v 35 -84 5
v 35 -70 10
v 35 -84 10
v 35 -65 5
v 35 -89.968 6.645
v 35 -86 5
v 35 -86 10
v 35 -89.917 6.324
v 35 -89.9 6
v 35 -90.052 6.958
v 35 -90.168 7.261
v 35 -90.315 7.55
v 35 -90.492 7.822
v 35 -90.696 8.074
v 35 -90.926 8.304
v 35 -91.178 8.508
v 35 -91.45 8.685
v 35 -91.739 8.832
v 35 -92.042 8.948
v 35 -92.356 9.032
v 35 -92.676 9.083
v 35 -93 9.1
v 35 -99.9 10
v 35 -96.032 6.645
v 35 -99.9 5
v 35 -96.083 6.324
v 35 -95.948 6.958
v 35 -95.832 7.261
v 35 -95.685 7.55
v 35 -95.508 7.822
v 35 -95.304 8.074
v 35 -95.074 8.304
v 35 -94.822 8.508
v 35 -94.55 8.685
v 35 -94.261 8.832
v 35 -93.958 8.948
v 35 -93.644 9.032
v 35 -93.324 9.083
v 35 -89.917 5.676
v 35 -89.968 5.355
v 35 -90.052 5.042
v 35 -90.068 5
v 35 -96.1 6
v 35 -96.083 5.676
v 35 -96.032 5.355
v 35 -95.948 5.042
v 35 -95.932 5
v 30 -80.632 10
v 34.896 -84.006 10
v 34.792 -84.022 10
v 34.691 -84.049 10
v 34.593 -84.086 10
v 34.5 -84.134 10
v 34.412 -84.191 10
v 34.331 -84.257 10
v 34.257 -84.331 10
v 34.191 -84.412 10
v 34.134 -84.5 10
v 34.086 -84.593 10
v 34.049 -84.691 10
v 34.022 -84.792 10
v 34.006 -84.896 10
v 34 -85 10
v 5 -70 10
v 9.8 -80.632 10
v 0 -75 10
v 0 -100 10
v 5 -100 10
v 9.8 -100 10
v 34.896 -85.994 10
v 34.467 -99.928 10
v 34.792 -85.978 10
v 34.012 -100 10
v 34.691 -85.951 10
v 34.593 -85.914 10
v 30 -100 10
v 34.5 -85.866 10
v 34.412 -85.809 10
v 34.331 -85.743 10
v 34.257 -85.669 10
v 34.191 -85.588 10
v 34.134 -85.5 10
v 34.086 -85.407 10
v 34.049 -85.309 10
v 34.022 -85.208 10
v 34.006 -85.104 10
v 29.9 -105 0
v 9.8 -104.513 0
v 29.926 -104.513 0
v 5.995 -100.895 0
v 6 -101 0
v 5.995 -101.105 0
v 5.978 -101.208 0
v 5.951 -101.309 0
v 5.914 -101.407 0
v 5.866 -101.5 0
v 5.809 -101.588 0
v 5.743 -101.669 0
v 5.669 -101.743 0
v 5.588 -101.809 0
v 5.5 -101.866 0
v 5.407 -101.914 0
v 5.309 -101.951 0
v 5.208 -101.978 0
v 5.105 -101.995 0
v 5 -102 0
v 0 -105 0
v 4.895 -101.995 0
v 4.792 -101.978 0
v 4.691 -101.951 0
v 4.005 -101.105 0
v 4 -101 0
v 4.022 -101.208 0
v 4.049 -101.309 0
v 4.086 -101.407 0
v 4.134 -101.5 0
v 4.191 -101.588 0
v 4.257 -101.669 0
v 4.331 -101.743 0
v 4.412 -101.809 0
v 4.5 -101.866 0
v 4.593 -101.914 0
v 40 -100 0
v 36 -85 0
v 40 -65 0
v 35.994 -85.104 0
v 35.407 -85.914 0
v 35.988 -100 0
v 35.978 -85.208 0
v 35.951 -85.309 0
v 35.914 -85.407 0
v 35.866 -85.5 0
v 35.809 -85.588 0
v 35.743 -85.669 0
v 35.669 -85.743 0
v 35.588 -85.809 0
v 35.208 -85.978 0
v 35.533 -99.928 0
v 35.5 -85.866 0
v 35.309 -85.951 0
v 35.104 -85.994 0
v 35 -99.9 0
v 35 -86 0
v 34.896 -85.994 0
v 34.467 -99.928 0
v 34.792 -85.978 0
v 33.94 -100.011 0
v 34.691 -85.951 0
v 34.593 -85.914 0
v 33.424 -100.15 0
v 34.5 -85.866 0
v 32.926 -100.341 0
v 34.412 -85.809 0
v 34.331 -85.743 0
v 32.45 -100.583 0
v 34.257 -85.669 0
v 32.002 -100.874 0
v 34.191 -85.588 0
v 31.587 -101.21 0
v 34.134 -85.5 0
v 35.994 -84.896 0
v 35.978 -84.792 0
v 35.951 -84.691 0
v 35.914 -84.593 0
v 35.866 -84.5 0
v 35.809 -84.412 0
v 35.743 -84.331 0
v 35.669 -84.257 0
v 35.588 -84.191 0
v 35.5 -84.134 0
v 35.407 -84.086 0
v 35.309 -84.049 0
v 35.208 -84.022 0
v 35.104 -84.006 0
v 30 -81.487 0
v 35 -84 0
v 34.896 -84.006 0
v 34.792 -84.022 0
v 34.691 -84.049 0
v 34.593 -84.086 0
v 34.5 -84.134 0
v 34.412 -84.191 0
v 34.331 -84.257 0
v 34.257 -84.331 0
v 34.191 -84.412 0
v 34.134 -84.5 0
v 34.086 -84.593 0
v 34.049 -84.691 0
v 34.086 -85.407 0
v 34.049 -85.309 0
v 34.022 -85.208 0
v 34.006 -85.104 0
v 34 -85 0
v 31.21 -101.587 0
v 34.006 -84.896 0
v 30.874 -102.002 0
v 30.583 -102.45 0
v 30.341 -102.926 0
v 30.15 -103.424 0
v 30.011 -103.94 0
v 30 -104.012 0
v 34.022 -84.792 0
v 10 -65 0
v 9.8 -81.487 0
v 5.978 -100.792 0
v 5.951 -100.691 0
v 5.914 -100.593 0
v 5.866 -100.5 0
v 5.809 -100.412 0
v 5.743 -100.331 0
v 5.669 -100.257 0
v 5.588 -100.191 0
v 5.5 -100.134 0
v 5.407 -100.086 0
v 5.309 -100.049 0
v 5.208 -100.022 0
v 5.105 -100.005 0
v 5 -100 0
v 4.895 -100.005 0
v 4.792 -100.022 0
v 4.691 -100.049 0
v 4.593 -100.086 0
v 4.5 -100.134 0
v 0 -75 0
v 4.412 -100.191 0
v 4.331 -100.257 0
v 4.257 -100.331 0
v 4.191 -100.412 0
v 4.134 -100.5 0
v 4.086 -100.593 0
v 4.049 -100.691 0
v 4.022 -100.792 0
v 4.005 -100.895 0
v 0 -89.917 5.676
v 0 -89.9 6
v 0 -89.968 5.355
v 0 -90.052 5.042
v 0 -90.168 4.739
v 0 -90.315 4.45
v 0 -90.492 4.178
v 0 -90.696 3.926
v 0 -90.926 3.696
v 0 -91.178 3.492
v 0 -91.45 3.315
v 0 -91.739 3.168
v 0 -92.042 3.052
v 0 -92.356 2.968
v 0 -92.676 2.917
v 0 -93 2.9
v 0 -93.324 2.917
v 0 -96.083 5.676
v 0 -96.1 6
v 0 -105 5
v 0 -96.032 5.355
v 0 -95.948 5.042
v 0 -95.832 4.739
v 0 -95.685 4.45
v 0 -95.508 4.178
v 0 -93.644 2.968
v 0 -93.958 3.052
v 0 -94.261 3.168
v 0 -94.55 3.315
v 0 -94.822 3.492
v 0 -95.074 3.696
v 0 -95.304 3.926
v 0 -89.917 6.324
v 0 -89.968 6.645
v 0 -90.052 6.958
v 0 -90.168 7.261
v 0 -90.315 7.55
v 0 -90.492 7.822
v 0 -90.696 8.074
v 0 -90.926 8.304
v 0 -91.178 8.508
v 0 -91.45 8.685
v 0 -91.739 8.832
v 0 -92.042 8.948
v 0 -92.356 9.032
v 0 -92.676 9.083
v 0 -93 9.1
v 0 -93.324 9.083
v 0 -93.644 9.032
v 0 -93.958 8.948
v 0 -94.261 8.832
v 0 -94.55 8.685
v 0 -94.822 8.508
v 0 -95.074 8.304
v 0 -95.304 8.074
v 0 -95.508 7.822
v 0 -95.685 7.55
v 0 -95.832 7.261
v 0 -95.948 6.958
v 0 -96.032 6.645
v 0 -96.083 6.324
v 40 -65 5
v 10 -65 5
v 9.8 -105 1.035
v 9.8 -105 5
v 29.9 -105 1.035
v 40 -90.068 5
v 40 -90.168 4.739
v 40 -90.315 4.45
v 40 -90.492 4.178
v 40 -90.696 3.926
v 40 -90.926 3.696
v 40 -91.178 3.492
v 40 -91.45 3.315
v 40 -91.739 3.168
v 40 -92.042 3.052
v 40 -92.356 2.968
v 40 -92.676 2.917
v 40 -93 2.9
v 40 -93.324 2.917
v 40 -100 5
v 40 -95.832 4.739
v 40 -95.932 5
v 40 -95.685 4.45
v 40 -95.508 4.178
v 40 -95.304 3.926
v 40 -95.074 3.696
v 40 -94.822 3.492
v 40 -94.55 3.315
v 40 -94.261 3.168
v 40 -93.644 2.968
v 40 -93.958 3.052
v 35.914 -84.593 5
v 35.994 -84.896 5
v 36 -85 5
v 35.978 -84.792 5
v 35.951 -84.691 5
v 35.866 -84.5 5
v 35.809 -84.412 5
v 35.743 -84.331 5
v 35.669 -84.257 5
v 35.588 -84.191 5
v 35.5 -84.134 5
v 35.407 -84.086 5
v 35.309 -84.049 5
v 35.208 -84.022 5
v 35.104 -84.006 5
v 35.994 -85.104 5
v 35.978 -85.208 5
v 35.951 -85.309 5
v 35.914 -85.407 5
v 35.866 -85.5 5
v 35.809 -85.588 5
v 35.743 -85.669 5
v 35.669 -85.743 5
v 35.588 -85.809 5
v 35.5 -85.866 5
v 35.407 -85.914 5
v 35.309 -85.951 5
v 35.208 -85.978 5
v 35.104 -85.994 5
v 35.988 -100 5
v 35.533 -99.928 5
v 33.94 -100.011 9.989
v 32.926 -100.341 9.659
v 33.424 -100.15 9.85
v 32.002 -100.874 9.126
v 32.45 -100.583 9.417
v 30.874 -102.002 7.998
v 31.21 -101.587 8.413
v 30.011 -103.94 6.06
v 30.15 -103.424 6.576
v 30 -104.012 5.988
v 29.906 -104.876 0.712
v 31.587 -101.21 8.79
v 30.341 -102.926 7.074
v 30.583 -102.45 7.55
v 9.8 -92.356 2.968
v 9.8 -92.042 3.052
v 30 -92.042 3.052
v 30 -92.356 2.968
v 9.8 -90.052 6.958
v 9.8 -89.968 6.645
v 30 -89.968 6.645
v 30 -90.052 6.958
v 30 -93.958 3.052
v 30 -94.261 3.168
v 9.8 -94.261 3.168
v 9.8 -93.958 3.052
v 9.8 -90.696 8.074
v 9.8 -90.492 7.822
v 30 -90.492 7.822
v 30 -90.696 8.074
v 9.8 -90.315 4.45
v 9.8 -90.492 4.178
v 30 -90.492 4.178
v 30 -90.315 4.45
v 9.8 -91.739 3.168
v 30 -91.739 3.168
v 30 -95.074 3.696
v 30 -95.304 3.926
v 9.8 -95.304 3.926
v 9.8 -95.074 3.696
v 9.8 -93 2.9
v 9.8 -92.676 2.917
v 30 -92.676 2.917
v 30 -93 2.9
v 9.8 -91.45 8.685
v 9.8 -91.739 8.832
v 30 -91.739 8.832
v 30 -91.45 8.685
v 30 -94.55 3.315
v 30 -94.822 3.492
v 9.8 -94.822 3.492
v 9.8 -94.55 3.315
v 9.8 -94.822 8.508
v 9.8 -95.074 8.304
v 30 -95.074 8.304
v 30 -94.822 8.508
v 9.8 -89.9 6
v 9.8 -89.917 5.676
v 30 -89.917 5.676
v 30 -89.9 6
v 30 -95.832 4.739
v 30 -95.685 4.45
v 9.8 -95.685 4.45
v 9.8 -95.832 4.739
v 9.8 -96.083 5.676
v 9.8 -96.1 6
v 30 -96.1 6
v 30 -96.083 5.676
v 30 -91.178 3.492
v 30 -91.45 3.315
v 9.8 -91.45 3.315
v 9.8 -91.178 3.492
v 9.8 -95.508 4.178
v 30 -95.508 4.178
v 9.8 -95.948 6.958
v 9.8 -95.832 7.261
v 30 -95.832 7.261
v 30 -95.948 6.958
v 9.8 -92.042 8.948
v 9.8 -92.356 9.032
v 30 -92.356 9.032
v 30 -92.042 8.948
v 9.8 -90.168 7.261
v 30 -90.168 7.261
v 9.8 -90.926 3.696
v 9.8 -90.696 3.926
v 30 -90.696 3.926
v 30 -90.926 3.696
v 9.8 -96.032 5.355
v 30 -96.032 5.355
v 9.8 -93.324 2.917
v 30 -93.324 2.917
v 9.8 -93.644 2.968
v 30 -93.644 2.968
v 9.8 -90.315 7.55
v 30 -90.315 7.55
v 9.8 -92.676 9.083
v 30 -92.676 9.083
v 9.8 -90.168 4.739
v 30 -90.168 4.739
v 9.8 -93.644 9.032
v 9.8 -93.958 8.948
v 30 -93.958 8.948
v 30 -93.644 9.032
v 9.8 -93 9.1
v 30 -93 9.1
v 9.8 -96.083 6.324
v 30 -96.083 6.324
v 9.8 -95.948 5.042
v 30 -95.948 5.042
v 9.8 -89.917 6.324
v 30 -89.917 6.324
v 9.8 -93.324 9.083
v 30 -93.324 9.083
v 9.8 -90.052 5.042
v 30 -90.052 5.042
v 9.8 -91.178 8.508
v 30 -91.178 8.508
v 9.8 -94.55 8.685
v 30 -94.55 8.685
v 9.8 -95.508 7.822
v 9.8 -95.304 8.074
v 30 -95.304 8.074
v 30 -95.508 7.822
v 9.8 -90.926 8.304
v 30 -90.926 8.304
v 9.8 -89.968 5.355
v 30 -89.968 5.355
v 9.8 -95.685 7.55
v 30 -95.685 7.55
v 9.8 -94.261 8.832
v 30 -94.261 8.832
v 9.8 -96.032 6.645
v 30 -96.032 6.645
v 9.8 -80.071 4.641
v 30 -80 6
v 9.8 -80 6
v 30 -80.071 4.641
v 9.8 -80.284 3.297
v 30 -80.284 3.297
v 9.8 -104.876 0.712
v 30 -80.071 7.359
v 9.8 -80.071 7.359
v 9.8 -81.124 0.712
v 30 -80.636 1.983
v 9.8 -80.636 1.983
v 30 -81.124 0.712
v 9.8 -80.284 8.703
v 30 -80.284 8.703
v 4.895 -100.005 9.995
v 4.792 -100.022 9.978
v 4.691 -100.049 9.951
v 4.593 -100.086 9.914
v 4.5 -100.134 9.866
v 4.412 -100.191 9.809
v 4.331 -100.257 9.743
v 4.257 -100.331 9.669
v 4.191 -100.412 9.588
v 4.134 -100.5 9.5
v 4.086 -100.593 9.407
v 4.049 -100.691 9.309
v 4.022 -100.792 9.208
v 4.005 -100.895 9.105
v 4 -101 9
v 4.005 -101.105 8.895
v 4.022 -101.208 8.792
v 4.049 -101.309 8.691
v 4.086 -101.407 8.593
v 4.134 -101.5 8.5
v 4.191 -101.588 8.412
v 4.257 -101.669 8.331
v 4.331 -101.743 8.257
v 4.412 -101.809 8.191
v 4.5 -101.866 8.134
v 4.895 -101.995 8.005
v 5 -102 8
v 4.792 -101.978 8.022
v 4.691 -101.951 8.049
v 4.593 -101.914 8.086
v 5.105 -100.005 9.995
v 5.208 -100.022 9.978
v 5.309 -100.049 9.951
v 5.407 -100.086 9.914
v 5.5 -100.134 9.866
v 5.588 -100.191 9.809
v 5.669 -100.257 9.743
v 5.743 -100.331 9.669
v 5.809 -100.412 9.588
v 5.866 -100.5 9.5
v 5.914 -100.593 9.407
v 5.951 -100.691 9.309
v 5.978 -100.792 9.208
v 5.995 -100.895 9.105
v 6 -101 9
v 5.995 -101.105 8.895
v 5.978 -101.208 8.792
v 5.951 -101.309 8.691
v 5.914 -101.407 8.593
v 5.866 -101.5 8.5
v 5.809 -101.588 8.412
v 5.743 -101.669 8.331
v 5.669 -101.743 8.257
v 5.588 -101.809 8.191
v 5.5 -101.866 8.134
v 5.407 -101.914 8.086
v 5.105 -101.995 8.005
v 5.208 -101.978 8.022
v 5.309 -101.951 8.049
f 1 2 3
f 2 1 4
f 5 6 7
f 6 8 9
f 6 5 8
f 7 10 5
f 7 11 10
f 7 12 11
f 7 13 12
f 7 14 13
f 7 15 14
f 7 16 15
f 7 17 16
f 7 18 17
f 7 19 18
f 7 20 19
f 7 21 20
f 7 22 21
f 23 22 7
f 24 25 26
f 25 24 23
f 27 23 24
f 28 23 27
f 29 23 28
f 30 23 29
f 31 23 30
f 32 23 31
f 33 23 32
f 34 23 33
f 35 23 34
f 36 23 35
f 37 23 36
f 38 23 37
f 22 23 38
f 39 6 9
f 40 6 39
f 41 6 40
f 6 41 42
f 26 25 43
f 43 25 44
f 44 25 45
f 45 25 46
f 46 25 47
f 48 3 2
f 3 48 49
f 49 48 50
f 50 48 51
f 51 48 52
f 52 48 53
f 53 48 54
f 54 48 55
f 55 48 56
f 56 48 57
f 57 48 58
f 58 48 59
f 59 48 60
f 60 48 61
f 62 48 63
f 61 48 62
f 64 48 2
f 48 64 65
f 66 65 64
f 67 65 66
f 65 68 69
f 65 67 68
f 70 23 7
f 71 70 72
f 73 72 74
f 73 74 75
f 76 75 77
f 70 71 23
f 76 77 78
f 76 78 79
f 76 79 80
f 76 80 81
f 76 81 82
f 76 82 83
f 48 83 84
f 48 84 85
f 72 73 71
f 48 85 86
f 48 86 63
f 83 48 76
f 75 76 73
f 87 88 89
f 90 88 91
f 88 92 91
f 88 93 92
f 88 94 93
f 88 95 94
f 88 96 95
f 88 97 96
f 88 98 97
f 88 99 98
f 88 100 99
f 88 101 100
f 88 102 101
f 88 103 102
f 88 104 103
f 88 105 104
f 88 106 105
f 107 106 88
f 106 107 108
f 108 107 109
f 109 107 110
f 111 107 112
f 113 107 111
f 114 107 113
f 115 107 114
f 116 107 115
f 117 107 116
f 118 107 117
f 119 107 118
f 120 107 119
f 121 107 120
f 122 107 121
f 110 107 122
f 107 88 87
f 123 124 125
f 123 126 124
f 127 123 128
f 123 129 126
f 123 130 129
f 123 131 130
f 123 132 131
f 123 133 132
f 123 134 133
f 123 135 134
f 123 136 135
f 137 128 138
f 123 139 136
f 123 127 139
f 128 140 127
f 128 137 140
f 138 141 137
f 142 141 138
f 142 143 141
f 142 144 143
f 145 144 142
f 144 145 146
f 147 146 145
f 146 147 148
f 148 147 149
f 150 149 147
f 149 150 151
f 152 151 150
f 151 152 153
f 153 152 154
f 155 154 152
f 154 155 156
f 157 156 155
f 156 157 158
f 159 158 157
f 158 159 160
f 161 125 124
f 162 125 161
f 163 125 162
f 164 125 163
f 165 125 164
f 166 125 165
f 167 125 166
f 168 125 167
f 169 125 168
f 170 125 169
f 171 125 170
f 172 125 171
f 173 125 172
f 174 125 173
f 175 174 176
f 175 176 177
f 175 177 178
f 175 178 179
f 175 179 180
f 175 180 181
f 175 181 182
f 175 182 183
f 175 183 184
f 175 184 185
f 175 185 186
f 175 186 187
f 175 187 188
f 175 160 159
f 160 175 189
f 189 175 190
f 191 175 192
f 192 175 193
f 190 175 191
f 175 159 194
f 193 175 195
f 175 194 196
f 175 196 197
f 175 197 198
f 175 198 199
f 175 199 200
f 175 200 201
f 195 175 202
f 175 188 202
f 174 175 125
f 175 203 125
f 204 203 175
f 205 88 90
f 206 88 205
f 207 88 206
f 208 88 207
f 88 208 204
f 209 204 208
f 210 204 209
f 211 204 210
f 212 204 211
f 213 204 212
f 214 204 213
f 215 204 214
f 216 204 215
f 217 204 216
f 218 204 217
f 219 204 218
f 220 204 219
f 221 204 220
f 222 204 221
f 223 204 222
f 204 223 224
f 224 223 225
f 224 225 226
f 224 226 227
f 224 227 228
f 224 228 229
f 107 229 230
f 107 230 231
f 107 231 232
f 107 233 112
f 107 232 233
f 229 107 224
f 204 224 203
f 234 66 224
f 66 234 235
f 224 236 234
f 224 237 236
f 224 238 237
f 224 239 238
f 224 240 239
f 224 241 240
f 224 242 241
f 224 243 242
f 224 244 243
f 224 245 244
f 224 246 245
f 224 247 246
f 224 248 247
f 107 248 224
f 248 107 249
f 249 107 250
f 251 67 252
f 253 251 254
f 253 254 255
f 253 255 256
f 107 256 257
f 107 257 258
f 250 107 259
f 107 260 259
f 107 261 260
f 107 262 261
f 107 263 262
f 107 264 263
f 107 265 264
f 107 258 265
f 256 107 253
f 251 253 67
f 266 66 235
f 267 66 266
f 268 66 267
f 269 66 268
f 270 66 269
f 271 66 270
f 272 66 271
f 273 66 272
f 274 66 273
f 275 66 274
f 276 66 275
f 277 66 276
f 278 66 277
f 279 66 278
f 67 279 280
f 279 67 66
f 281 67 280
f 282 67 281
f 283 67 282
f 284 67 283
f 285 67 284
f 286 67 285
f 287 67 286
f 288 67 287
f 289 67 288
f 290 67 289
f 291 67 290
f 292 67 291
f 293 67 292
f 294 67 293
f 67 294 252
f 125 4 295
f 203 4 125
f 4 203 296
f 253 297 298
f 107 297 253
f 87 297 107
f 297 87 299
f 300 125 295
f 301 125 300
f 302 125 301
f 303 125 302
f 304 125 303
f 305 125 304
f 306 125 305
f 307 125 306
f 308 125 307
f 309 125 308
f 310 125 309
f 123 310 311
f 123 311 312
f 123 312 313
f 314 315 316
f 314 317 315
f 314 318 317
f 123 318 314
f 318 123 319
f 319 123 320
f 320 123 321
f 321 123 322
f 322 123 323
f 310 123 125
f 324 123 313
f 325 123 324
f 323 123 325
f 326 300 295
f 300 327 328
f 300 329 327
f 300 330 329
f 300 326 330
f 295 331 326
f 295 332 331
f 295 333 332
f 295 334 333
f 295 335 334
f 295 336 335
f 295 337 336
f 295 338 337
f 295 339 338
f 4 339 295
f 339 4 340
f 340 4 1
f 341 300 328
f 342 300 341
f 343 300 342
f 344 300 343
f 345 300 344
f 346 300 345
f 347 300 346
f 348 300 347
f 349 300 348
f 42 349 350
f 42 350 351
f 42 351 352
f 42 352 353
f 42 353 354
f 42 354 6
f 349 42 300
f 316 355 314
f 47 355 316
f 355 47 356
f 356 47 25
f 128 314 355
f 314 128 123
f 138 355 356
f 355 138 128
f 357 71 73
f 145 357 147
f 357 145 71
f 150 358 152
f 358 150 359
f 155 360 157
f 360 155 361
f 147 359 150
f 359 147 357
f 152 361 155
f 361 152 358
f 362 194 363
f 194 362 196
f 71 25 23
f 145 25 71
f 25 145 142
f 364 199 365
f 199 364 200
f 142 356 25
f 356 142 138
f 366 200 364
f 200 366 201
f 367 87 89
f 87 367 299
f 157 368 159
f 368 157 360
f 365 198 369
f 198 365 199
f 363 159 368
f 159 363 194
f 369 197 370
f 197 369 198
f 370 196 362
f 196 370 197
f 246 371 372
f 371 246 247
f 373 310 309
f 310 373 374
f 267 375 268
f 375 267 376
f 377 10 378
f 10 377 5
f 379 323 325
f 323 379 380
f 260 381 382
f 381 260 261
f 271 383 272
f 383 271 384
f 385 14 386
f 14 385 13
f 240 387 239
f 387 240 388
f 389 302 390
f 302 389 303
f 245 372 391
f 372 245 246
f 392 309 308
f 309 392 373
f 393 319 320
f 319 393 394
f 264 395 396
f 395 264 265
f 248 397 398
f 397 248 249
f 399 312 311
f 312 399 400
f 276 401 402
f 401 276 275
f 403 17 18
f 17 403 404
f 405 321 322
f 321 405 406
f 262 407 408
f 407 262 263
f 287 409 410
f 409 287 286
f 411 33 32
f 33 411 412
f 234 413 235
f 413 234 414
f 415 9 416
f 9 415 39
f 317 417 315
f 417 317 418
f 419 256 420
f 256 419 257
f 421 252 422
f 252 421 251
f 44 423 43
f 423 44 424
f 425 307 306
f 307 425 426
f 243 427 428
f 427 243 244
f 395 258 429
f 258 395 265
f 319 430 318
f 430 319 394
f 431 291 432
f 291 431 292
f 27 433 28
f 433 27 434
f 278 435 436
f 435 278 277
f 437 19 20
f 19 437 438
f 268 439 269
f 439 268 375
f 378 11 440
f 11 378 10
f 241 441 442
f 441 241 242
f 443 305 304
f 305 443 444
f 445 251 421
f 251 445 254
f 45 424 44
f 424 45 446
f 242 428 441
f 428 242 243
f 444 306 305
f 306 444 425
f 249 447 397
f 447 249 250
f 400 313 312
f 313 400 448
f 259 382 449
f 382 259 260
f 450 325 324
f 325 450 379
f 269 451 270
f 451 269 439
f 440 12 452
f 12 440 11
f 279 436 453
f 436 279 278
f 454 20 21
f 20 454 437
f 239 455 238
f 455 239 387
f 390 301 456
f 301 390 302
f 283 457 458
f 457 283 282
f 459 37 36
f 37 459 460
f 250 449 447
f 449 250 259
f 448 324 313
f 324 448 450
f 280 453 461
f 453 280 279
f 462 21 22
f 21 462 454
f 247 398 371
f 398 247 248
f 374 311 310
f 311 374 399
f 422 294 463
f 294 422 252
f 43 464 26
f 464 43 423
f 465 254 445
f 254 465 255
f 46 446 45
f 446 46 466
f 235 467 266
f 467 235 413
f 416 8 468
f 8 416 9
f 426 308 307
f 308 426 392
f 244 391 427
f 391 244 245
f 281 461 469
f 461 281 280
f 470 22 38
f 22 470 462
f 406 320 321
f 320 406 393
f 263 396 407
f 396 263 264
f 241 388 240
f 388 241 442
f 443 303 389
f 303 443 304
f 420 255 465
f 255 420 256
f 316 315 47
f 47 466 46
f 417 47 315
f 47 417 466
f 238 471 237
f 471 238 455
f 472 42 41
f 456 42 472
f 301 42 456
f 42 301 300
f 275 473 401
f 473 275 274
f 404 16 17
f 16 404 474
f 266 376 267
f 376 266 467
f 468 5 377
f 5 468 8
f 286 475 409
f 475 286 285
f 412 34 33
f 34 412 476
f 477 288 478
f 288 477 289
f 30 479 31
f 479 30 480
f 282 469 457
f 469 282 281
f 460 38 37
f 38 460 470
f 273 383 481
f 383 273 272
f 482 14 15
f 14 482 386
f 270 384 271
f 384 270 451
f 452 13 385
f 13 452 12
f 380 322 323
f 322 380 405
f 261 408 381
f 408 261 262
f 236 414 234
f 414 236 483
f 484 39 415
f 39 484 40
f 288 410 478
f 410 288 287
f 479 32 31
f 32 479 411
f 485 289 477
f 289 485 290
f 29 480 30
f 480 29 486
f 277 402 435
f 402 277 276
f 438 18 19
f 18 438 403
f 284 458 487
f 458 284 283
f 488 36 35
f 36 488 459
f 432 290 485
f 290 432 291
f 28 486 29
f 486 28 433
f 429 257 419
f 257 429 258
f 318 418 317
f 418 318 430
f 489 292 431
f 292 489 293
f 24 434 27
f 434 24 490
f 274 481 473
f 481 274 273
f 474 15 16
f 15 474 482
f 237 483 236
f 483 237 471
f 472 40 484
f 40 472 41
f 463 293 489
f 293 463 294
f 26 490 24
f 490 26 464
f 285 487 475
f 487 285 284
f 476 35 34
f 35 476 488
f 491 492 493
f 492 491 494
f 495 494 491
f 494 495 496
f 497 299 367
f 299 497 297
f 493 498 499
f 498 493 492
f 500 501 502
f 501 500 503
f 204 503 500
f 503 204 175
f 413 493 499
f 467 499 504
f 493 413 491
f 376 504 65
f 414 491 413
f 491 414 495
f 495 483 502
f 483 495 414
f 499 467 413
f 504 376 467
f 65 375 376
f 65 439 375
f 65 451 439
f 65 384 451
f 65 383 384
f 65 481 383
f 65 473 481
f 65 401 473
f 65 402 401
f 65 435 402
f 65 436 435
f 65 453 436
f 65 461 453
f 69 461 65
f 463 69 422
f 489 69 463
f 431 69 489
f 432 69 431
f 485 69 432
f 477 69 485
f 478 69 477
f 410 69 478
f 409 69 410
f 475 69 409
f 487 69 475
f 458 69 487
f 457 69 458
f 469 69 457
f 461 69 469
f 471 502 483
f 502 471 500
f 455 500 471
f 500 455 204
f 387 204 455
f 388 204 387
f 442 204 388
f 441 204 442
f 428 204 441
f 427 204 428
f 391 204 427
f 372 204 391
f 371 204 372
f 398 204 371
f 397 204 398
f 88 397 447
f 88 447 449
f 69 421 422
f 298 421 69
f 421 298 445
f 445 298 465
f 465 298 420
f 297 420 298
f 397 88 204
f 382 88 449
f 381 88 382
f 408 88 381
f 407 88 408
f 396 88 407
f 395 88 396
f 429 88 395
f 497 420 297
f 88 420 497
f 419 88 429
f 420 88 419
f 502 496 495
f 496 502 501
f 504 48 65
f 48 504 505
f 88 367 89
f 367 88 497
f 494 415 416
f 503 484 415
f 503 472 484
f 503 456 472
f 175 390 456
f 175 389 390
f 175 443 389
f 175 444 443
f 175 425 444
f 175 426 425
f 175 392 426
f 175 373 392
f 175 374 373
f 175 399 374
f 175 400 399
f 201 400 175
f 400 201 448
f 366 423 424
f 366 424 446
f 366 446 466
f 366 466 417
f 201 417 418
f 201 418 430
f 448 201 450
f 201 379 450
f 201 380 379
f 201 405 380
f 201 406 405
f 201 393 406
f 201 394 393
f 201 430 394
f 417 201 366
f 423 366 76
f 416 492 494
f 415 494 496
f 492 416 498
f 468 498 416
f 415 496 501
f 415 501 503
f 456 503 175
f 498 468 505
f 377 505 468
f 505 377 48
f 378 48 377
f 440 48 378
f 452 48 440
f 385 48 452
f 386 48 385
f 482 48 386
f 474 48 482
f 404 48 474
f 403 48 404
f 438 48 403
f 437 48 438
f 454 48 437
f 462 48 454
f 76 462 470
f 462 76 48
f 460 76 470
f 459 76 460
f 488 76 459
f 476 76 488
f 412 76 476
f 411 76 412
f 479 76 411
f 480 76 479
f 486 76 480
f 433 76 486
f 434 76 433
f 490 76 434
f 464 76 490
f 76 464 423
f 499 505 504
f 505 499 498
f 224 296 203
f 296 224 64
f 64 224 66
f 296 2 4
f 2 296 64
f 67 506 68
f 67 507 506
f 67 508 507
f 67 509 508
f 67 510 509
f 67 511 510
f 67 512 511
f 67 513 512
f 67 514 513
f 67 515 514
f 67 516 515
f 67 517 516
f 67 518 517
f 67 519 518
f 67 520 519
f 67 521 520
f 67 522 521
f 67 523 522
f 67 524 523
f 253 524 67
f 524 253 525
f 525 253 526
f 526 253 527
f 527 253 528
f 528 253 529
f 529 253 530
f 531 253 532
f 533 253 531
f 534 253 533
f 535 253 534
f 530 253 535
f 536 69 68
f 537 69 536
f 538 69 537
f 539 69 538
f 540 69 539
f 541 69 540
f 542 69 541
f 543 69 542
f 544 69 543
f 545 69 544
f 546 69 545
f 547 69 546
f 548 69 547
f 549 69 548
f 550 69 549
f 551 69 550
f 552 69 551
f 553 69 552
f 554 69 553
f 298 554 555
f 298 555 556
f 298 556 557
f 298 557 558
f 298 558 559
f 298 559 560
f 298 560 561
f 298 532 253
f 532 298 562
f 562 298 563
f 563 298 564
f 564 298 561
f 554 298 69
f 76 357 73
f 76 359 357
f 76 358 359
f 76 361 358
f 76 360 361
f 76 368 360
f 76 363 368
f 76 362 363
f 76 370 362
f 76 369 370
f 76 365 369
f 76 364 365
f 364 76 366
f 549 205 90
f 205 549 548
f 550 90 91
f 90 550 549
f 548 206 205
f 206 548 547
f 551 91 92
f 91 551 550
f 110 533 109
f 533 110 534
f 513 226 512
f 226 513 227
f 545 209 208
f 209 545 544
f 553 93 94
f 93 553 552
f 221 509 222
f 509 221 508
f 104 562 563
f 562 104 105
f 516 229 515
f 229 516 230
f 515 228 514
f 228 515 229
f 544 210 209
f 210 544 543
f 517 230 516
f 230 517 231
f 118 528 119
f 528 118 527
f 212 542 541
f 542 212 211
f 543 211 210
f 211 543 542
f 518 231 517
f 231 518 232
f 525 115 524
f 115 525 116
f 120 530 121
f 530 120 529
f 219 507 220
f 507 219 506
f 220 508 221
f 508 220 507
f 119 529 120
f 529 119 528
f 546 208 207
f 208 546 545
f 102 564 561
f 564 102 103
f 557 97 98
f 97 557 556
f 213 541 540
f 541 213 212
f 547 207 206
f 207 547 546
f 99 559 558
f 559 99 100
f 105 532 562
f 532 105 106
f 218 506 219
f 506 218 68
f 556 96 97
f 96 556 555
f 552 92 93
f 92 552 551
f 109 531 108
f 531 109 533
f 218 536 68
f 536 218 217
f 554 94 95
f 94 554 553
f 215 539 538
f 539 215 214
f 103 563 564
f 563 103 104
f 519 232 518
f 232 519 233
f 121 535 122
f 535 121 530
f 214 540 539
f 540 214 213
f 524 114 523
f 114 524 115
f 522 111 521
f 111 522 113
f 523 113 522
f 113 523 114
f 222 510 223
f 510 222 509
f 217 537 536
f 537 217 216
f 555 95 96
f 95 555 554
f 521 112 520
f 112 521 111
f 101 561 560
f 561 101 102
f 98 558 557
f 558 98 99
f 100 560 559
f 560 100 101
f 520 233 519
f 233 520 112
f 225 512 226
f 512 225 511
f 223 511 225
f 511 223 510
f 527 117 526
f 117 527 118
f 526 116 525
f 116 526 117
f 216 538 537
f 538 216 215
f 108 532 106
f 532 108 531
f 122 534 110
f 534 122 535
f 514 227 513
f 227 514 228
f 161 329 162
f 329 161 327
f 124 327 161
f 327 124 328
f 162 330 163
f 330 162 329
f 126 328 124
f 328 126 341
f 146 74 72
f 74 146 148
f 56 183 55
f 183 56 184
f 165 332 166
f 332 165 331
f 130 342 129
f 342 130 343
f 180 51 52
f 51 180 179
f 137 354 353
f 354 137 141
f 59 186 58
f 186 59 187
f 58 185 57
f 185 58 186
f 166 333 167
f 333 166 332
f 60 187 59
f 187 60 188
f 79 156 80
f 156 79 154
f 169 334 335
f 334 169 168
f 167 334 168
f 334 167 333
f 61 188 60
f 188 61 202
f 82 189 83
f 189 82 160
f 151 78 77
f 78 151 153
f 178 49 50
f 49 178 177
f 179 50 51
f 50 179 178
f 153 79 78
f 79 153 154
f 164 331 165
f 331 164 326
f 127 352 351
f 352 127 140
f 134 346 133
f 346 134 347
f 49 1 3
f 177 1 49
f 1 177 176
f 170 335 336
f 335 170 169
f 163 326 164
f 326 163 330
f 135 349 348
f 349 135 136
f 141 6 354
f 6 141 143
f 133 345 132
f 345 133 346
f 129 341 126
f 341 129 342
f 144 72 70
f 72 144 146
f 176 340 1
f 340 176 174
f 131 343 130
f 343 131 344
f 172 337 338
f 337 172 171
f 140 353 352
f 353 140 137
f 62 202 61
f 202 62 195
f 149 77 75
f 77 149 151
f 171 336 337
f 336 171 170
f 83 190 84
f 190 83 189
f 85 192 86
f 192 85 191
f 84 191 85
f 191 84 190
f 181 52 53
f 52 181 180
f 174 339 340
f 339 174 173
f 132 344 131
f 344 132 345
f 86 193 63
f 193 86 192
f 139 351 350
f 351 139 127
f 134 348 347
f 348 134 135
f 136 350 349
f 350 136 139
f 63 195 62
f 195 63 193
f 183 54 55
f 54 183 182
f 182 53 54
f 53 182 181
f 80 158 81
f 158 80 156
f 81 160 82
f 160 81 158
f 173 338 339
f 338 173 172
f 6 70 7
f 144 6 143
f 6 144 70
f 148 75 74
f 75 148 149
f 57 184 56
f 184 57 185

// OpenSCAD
// file: config_5x7.scad
/*
This is the base configuration file for the 4x5" format
# we are not using the exact ANSI measures, but slightly rounded measures for slight simplification
*/

// general tolerance
vTolerance = 0.2;

// sheet film and cassette measurements
vFilmSheet_l = 127;
vFilmSheet_w = 178;
vCassette_l = 214; // A min
vCassette_w = 150; // B max
vCassette_h = 14.3; // C max
vLightTrap_l = 1.5; // M2
vLightTrap_w = vCassette_w;
vLightTrap_h = 1.5; // M1
vLightTrap_offsetX = 194.5; // G max
vFilmWindow_l = 171;
vFilmWindow_w = 126;
vFilmWindow_offsetX = 18;
vGroundGlass_offsetZ = 5.8;

// Graflok - although 5x7 normally doesn't have Graflok clamps, but we use this measurement on the back plate
vGraflok_h = 6; // this is not the official measurement, just measured from a camera 

// lens board measures (we are using Wista/Technika-style lensboards)
vLensboard_l = 100;
vLensboard_w = 97;
vLensboard_h = 2;
vLensboard_offsetX = -(vLensboard_l+3)/2; // caution: we have an asymetric offset!
vLensboard_offsetY = -vLensboard_w/2;
vLensboardHole_d = 85;
vLensboardLighttrap_d = 89;
vLensboardLighttrap_h = 1+vTolerance;

// bellows frame measures - the bellows frame design is derived from standardcameras.com
// back frame
vBellowsBackInner_l = 193;
vBellowsBackInner_w = vBellowsBackInner_l;
vBellowsBackOuter_l = vBellowsBackInner_l+1;
vBellowsBackOuter_w = vBellowsBackOuter_l;

vBellowsBackFrameOuter_l = 209;
vBellowsBackFrameOuter_w = vBellowsBackFrameOuter_l;
vBellowsBackFrameOuter_h = 7;
vBellowsBackFrameInner_l = 180;
vBellowsBackFrameInner_w = vBellowsBackFrameInner_l;
vBellowsBackFrameInner_h = 5;

vBellowsBackLightTrapOuter_l = vBellowsBackFrameInner_l+2*2;
vBellowsBackLightTrapOuter_w = vBellowsBackLightTrapOuter_l;
vBellowsBackLightTrap_h = 3;

vBellowsBackFrameScrewHole_d = 2;
vBellowsBackFrameScrewHole_h = 10;
vBellowsBackFrameScrewHole_offsetXY = 80;
vBellowsBackFrameScrewHole_offsetZ = vBellowsBackFrameOuter_h/2;

// front frame
vBellowsFrontInner_l = 110; 
vBellowsFrontInner_w = vBellowsFrontInner_l;
vBellowsFrontOuter_l = vBellowsFrontInner_l+1;
vBellowsFrontOuter_w = vBellowsFrontOuter_l;

vBellowsFrontFrameOuter_l = 124;
vBellowsFrontFrameOuter_w = vBellowsFrontFrameOuter_l;
vBellowsFrontFrameOuter_h = 7;
vBellowsFrontFrameInner_l = 98;
vBellowsFrontFrameInner_w = vBellowsFrontFrameInner_l;
vBellowsFrontFrameInner_h = 5;

vBellowsFrontLightTrapOuter_l = vBellowsFrontFrameInner_l+2*2;
vBellowsFrontLightTrapOuter_w = vBellowsFrontLightTrapOuter_l;
vBellowsFrontLightTrap_h = 0;

vBellowsFrontFrameScrewHole_d = 2;
vBellowsFrontFrameScrewHole_h = 10;
vBellowsFrontFrameScrewHole_offsetXY = 50;
vBellowsFrontFrameScrewHole_offsetZ = vBellowsFrontFrameOuter_h/2;




// body dimensions
vWall_strength = 5;
vBodyOuter_l = 235; // make sure this is at least 4*vWall_strength larger than vBellowsBackFrameOuter_l!
vBodyOuter_w = 220; // make sure this is at least 2*vWall_strength larger than vBellowsBackFrameOuter_l!
vBodyOuter_h = 65;
vBodyEdge_r = vWall_strength;

// we will center our model on the Y axis and on the center of the bellows frame
// at least for the 4x5 version, we have to do an asymetric offset of 2.5mm on the X-axis 
vAsymOffsetX = -2.5;  

// back plate
vBackPlateLength = 210; // we will probably use about the same size as the bellows back frame
vBackPlateStrength = vWall_strength;

// hinges for front lid
vHingeInnerDistance = 120;
vHingeBaseWidth = 30;
vHingeHole = 5;

// lid lock measures
vLidLockBase_d = 8;
vLidLockHole_distance = 100;

// rail dimensions
vLowerRail_w = 120;
vUpperRail_w = vLowerRail_w;

// cutout for stop indents
vStopIndent_l = 4;
vStopIndent_h = 5;
vStopIndentDistance = 25; // shorter than 25 is not necessary
vStopIndent_offsetX = 30; // don't go shorter than 20 if you intend to use a 90mm lens!

// for all dovetails we use a base width of 5mm and a base height of 5mm
// we are applying tolerances to the inner AND outer part of a dovetail, in width and height
vDoveTail_w = 5;
vDoveTail_h = 5;
vDoveTail_tolerance = 0.2;

// focusing rod
vFocusingRod_d = 6;
vFocusingKnob_d = 25;
vFocusingKnob_h = 20;

// stabilizer measures (just the outer measures of our stabilizer block, not the tripod slider)
vStabilizerBase_l = 200;
vStabilizerBase_w = 100;  
vStabilizerBase_h = 7;
vStabilizerDovetailBase_w = 50;
// screw holes for the stabilizer
vLidHoleCount_x = 6;
vLidHoleDist_x = 35;
vLidHoleCount_y = 2;
vLidHoleDist_y = 60;

// screw diameters, length is individually set
vScrew1Hole_d = 3;
vScrew1ThreadHole_d = 2.2;
vScrew2Hole_d = 2;
vScrew2ThreadHole_d = 1.4;


 
// file: modules.scad
/*
This is a collection of the modules which are used heavily within the whole project.
Almost all parts rely on the modules to remain "as is", especially regarding their current orientation.
So please act very carefully here, otherwise you may screw up the complete design!

*/

// roof module - this is heavily used for dovetail cutouts
// please keep as is
module roof(l, w, h){
    polyhedron(
        points=[
            [0,0,0],
            [l,0,0],
            [l,w,0],
            [0,w,0],
            [0,w/2,h],
            [l,w/2,h]
            ],
        faces=[
            [0,1,2,3],
            [0,4,1],
            [1,4,5,2],
            [2,5,3],
            [3,5,4,0]
            ]
            );
    };

// a wedge module - this is heavily used for cutting edges
// please keep as is    
module wedge(l, w, h) {
    polyhedron(
            points=[
                [0,0,0],
                [l,0,0],
                [l,w,0],
                [0,w,0],
                [0,0,h],
                [l,0,h]
            ],
            faces=[
                [0,3,2,1],
                [0,1,5,4],
                [1,2,5],
                [2,3,4,5],
                [3,0,4]
            ]
    );
   };

// simple tube module.   
module tube(d1, d2, h) {
    difference() {
        cylinder(d=d1, h=h);
        cylinder(d=d2, h=h);
        };
    };

// mainly used for making holes for countersunk screws
// please keep as is    
module countersunk_screw(vScrew_d, vScrew_l){
    union(){
    cylinder(d=vScrew_d, h= vScrew_l);
    cylinder(d1=vScrew_d*2, h=vScrew_d);
    };
};

// module for making hexagons, e.g. hex nuts. kw is the key width
// please keep as is
module hex(kw, h) {
	render()
        translate([0, 0, h/2])
            intersection_for(a = [0, 120, 240]) {
                rotate([0, 0, a])
                    cube([kw, 3 * kw, h], true);
                }
}
// file: baseconfig.scad
/*
Here we define some variables which are independent from the camera format
*/


// some generic variables
$fn = 60; // we are using 60 fragments for cylinders and similar objects

// we are including a format specific configuration sheet - but make sure to include only one!

// include <config_4x5.scad>;
include <config_5x7.scad>;
// include <config_8x10.scad>;

// Arca Swiss tripod plate
// caution: some Arca Swiss compatible tripod heads may have slight variations
// vArca_length = xx; // the length is irrelevant here
vArca_width = 38;
vArca_height = 7;
vArcaBase_cutout = 4;
vArcaBase_height = 1.5;
// main file
// loading the base configuration
include <baseconfig.scad>;

// some modules such as hex, countersunk screws, roof, wedge are available in a module file
use <modules.scad>;


// focusing rod axis is set to -63mm to the lid center
// rail block total width is 100mm
// inner total width is 160mm



vFocusingBlock_l = 35; //OK


//vFocusingBlock_w = 30;
vFocusingBlock_w = (vBodyOuter_w - 2*vWall_strength - vLowerRail_w - 2*vDoveTail_w)/2; 
vFocusingBlock_h = 10;
vFocusingBlock_offsetX = 0;
vFocusingBlock_offsetY = -(vBodyOuter_w - 2*vWall_strength)/2; // we are shifting to -Y so we can use the same measurements as on the lid 
vFocusingBlock_offsetZ = 0;

vFrontWallExtension_l = 5;
vFrontWallExtension_w = vFocusingBlock_w - vWall_strength;
vFrontWallExtension_h = 5;
vFrontWallExtension_offsetX = vFocusingBlock_l;
vFrontWallExtension_offsetY = vFocusingBlock_offsetY + vFocusingBlock_w - vFrontWallExtension_w;
vFrontWallExtension_offsetZ = 0;

vFrontEdgeCutout_d = 10+vTolerance;
vFrontEdgeCutout_h = vFocusingBlock_h;
vFrontEdgeCutout_offsetX = vFocusingBlock_l;
vFrontEdgeCutout_offsetY = vFocusingBlock_offsetY;
vFrontEdgeCutout_offsetZ = 0;

vBackEdgeCutout_l = 10;
vBackEdgeCutout_w = 10;
vBackEdgeCutout_h = vFocusingBlock_h;
vBackEdgeCutout_offsetX = 0;
vBackEdgeCutout_offsetY = vFocusingBlock_offsetY+vFocusingBlock_w;
vBackEdgeCutout_offsetZ = 0;

vFocusingRodHole_d = 6+vTolerance;
vFocusingRodHole_h = vFocusingBlock_l+vFrontWallExtension_l;
vFocusingRodHole_offsetX = 0;
vFocusingRodHole_offsetY = -(vBodyOuter_w/2)+10+7;//-68;
//vFocusingRodHole_offsetZ = vFocusingBlock_h/2;
vFocusingRodHole_offsetZ = 6;

vFocusingKnobCutout_d = 26;
vFocusingKnobCutout_h = 20+vTolerance;
vFocusingKnob_offsetX = 10-vTolerance;
vFocusingKnob_offsetY = vFocusingRodHole_offsetY;
vFocusingKnob_offsetZ = vFocusingRodHole_offsetZ;

vLeftUpperEdgeCutout_l = vFocusingBlock_l;
vLeftUpperEdgeCutout_w = vFocusingBlock_h/2;
vLeftUpperEdgeCutout_h = vFocusingBlock_h/2;
vLeftUpperEdgeCutout_offsetX = 0;
vLeftUpperEdgeCutout_offsetY = vFocusingBlock_offsetY+vFocusingBlock_w;
vLeftUpperEdgeCutout_offsetZ = vFocusingBlock_h;

vRightUpperEdgeCutout_l = vFocusingBlock_l;
vRightUpperEdgeCutout_w = vFocusingBlock_h-vFrontWallExtension_h;
vRightUpperEdgeCutout_h = vRightUpperEdgeCutout_w;
vRightUpperEdgeCutout_offsetX = 0;
vRightUpperEdgeCutout_offsetY = vFocusingBlock_offsetY;
vRightUpperEdgeCutout_offsetZ = vFocusingBlock_h;

vScrewHole_d = 2;
vScrewHole_h = 10;
vScrewHole1_offsetX = 5;
vScrewHole2_offsetX = vFocusingBlock_l;
vScrewHole3_offsetX = vFocusingBlock_l;
vScrewHole1_offsetY = vFocusingRodHole_offsetY-8;
vScrewHole2_offsetY = vFocusingRodHole_offsetY-8;
vScrewHole3_offsetY = vFocusingRodHole_offsetY+8;
vScrewHole1_offsetZ = 0;
vScrewHole2_offsetZ = 0;
vScrewHole3_offsetZ = 0;

//wedge(vUpperEdgeCutout_l, -vUpperEdgeCutout_w, -vUpperEdgeCutout_h);


 difference(){   
     union(){
         translate([vFocusingBlock_offsetX, vFocusingBlock_offsetY, vFocusingBlock_offsetZ])
            cube([vFocusingBlock_l, vFocusingBlock_w, vFocusingBlock_h]);
         translate([vFrontWallExtension_offsetX, vFrontWallExtension_offsetY, vFrontWallExtension_offsetZ])
            cube([vFrontWallExtension_l, vFrontWallExtension_w, vFrontWallExtension_h]);
         }
     // front edge cutout
     translate([vFrontEdgeCutout_offsetX, vFrontEdgeCutout_offsetY, vFrontEdgeCutout_offsetZ])
         cylinder(d=vFrontEdgeCutout_d, h= vFrontEdgeCutout_h);
     // hole for focusing_rod
     translate([vFocusingRodHole_offsetX, vFocusingRodHole_offsetY, vFocusingRodHole_offsetZ])
            rotate([0, 90, 0])
                cylinder(d=vFocusingRodHole_d, h=vFocusingRodHole_h);
     // cutout for the focusing knob
     translate([vFocusingKnob_offsetX, vFocusingKnob_offsetY, vFocusingKnob_offsetZ])
            rotate([0, 90, 0])
                cylinder(d=vFocusingKnobCutout_d, h=vFocusingKnobCutout_h);  
     // back edge cut
     translate([vBackEdgeCutout_offsetX, vBackEdgeCutout_offsetY, vBackEdgeCutout_offsetZ])
        rotate([0, -90, 180])
            wedge(vBackEdgeCutout_h, vBackEdgeCutout_w, vBackEdgeCutout_l);
         
     // upper edge cutoff
     translate([vLeftUpperEdgeCutout_offsetX, vLeftUpperEdgeCutout_offsetY, vLeftUpperEdgeCutout_offsetZ])
            wedge(vLeftUpperEdgeCutout_l, -vLeftUpperEdgeCutout_w, -vLeftUpperEdgeCutout_h);
     translate([vRightUpperEdgeCutout_offsetX, vRightUpperEdgeCutout_offsetY, vRightUpperEdgeCutout_offsetZ])
            wedge(vRightUpperEdgeCutout_l, vRightUpperEdgeCutout_w, -vRightUpperEdgeCutout_h);
     // screw holes
     translate([vScrewHole1_offsetX, vScrewHole1_offsetY, vScrewHole1_offsetZ])
        cylinder(d=vScrewHole_d, h=vScrewHole_h);
    /*translate([vScrewHole2_offsetX, vScrewHole2_offsetY, vScrewHole2_offsetZ])
        cylinder(d=vScrewHole_d, h=vScrewHole_h);*/
    translate([vScrewHole3_offsetX, vScrewHole3_offsetY, vScrewHole3_offsetZ])
        cylinder(d=vScrewHole_d, h=vScrewHole_h);
 }
